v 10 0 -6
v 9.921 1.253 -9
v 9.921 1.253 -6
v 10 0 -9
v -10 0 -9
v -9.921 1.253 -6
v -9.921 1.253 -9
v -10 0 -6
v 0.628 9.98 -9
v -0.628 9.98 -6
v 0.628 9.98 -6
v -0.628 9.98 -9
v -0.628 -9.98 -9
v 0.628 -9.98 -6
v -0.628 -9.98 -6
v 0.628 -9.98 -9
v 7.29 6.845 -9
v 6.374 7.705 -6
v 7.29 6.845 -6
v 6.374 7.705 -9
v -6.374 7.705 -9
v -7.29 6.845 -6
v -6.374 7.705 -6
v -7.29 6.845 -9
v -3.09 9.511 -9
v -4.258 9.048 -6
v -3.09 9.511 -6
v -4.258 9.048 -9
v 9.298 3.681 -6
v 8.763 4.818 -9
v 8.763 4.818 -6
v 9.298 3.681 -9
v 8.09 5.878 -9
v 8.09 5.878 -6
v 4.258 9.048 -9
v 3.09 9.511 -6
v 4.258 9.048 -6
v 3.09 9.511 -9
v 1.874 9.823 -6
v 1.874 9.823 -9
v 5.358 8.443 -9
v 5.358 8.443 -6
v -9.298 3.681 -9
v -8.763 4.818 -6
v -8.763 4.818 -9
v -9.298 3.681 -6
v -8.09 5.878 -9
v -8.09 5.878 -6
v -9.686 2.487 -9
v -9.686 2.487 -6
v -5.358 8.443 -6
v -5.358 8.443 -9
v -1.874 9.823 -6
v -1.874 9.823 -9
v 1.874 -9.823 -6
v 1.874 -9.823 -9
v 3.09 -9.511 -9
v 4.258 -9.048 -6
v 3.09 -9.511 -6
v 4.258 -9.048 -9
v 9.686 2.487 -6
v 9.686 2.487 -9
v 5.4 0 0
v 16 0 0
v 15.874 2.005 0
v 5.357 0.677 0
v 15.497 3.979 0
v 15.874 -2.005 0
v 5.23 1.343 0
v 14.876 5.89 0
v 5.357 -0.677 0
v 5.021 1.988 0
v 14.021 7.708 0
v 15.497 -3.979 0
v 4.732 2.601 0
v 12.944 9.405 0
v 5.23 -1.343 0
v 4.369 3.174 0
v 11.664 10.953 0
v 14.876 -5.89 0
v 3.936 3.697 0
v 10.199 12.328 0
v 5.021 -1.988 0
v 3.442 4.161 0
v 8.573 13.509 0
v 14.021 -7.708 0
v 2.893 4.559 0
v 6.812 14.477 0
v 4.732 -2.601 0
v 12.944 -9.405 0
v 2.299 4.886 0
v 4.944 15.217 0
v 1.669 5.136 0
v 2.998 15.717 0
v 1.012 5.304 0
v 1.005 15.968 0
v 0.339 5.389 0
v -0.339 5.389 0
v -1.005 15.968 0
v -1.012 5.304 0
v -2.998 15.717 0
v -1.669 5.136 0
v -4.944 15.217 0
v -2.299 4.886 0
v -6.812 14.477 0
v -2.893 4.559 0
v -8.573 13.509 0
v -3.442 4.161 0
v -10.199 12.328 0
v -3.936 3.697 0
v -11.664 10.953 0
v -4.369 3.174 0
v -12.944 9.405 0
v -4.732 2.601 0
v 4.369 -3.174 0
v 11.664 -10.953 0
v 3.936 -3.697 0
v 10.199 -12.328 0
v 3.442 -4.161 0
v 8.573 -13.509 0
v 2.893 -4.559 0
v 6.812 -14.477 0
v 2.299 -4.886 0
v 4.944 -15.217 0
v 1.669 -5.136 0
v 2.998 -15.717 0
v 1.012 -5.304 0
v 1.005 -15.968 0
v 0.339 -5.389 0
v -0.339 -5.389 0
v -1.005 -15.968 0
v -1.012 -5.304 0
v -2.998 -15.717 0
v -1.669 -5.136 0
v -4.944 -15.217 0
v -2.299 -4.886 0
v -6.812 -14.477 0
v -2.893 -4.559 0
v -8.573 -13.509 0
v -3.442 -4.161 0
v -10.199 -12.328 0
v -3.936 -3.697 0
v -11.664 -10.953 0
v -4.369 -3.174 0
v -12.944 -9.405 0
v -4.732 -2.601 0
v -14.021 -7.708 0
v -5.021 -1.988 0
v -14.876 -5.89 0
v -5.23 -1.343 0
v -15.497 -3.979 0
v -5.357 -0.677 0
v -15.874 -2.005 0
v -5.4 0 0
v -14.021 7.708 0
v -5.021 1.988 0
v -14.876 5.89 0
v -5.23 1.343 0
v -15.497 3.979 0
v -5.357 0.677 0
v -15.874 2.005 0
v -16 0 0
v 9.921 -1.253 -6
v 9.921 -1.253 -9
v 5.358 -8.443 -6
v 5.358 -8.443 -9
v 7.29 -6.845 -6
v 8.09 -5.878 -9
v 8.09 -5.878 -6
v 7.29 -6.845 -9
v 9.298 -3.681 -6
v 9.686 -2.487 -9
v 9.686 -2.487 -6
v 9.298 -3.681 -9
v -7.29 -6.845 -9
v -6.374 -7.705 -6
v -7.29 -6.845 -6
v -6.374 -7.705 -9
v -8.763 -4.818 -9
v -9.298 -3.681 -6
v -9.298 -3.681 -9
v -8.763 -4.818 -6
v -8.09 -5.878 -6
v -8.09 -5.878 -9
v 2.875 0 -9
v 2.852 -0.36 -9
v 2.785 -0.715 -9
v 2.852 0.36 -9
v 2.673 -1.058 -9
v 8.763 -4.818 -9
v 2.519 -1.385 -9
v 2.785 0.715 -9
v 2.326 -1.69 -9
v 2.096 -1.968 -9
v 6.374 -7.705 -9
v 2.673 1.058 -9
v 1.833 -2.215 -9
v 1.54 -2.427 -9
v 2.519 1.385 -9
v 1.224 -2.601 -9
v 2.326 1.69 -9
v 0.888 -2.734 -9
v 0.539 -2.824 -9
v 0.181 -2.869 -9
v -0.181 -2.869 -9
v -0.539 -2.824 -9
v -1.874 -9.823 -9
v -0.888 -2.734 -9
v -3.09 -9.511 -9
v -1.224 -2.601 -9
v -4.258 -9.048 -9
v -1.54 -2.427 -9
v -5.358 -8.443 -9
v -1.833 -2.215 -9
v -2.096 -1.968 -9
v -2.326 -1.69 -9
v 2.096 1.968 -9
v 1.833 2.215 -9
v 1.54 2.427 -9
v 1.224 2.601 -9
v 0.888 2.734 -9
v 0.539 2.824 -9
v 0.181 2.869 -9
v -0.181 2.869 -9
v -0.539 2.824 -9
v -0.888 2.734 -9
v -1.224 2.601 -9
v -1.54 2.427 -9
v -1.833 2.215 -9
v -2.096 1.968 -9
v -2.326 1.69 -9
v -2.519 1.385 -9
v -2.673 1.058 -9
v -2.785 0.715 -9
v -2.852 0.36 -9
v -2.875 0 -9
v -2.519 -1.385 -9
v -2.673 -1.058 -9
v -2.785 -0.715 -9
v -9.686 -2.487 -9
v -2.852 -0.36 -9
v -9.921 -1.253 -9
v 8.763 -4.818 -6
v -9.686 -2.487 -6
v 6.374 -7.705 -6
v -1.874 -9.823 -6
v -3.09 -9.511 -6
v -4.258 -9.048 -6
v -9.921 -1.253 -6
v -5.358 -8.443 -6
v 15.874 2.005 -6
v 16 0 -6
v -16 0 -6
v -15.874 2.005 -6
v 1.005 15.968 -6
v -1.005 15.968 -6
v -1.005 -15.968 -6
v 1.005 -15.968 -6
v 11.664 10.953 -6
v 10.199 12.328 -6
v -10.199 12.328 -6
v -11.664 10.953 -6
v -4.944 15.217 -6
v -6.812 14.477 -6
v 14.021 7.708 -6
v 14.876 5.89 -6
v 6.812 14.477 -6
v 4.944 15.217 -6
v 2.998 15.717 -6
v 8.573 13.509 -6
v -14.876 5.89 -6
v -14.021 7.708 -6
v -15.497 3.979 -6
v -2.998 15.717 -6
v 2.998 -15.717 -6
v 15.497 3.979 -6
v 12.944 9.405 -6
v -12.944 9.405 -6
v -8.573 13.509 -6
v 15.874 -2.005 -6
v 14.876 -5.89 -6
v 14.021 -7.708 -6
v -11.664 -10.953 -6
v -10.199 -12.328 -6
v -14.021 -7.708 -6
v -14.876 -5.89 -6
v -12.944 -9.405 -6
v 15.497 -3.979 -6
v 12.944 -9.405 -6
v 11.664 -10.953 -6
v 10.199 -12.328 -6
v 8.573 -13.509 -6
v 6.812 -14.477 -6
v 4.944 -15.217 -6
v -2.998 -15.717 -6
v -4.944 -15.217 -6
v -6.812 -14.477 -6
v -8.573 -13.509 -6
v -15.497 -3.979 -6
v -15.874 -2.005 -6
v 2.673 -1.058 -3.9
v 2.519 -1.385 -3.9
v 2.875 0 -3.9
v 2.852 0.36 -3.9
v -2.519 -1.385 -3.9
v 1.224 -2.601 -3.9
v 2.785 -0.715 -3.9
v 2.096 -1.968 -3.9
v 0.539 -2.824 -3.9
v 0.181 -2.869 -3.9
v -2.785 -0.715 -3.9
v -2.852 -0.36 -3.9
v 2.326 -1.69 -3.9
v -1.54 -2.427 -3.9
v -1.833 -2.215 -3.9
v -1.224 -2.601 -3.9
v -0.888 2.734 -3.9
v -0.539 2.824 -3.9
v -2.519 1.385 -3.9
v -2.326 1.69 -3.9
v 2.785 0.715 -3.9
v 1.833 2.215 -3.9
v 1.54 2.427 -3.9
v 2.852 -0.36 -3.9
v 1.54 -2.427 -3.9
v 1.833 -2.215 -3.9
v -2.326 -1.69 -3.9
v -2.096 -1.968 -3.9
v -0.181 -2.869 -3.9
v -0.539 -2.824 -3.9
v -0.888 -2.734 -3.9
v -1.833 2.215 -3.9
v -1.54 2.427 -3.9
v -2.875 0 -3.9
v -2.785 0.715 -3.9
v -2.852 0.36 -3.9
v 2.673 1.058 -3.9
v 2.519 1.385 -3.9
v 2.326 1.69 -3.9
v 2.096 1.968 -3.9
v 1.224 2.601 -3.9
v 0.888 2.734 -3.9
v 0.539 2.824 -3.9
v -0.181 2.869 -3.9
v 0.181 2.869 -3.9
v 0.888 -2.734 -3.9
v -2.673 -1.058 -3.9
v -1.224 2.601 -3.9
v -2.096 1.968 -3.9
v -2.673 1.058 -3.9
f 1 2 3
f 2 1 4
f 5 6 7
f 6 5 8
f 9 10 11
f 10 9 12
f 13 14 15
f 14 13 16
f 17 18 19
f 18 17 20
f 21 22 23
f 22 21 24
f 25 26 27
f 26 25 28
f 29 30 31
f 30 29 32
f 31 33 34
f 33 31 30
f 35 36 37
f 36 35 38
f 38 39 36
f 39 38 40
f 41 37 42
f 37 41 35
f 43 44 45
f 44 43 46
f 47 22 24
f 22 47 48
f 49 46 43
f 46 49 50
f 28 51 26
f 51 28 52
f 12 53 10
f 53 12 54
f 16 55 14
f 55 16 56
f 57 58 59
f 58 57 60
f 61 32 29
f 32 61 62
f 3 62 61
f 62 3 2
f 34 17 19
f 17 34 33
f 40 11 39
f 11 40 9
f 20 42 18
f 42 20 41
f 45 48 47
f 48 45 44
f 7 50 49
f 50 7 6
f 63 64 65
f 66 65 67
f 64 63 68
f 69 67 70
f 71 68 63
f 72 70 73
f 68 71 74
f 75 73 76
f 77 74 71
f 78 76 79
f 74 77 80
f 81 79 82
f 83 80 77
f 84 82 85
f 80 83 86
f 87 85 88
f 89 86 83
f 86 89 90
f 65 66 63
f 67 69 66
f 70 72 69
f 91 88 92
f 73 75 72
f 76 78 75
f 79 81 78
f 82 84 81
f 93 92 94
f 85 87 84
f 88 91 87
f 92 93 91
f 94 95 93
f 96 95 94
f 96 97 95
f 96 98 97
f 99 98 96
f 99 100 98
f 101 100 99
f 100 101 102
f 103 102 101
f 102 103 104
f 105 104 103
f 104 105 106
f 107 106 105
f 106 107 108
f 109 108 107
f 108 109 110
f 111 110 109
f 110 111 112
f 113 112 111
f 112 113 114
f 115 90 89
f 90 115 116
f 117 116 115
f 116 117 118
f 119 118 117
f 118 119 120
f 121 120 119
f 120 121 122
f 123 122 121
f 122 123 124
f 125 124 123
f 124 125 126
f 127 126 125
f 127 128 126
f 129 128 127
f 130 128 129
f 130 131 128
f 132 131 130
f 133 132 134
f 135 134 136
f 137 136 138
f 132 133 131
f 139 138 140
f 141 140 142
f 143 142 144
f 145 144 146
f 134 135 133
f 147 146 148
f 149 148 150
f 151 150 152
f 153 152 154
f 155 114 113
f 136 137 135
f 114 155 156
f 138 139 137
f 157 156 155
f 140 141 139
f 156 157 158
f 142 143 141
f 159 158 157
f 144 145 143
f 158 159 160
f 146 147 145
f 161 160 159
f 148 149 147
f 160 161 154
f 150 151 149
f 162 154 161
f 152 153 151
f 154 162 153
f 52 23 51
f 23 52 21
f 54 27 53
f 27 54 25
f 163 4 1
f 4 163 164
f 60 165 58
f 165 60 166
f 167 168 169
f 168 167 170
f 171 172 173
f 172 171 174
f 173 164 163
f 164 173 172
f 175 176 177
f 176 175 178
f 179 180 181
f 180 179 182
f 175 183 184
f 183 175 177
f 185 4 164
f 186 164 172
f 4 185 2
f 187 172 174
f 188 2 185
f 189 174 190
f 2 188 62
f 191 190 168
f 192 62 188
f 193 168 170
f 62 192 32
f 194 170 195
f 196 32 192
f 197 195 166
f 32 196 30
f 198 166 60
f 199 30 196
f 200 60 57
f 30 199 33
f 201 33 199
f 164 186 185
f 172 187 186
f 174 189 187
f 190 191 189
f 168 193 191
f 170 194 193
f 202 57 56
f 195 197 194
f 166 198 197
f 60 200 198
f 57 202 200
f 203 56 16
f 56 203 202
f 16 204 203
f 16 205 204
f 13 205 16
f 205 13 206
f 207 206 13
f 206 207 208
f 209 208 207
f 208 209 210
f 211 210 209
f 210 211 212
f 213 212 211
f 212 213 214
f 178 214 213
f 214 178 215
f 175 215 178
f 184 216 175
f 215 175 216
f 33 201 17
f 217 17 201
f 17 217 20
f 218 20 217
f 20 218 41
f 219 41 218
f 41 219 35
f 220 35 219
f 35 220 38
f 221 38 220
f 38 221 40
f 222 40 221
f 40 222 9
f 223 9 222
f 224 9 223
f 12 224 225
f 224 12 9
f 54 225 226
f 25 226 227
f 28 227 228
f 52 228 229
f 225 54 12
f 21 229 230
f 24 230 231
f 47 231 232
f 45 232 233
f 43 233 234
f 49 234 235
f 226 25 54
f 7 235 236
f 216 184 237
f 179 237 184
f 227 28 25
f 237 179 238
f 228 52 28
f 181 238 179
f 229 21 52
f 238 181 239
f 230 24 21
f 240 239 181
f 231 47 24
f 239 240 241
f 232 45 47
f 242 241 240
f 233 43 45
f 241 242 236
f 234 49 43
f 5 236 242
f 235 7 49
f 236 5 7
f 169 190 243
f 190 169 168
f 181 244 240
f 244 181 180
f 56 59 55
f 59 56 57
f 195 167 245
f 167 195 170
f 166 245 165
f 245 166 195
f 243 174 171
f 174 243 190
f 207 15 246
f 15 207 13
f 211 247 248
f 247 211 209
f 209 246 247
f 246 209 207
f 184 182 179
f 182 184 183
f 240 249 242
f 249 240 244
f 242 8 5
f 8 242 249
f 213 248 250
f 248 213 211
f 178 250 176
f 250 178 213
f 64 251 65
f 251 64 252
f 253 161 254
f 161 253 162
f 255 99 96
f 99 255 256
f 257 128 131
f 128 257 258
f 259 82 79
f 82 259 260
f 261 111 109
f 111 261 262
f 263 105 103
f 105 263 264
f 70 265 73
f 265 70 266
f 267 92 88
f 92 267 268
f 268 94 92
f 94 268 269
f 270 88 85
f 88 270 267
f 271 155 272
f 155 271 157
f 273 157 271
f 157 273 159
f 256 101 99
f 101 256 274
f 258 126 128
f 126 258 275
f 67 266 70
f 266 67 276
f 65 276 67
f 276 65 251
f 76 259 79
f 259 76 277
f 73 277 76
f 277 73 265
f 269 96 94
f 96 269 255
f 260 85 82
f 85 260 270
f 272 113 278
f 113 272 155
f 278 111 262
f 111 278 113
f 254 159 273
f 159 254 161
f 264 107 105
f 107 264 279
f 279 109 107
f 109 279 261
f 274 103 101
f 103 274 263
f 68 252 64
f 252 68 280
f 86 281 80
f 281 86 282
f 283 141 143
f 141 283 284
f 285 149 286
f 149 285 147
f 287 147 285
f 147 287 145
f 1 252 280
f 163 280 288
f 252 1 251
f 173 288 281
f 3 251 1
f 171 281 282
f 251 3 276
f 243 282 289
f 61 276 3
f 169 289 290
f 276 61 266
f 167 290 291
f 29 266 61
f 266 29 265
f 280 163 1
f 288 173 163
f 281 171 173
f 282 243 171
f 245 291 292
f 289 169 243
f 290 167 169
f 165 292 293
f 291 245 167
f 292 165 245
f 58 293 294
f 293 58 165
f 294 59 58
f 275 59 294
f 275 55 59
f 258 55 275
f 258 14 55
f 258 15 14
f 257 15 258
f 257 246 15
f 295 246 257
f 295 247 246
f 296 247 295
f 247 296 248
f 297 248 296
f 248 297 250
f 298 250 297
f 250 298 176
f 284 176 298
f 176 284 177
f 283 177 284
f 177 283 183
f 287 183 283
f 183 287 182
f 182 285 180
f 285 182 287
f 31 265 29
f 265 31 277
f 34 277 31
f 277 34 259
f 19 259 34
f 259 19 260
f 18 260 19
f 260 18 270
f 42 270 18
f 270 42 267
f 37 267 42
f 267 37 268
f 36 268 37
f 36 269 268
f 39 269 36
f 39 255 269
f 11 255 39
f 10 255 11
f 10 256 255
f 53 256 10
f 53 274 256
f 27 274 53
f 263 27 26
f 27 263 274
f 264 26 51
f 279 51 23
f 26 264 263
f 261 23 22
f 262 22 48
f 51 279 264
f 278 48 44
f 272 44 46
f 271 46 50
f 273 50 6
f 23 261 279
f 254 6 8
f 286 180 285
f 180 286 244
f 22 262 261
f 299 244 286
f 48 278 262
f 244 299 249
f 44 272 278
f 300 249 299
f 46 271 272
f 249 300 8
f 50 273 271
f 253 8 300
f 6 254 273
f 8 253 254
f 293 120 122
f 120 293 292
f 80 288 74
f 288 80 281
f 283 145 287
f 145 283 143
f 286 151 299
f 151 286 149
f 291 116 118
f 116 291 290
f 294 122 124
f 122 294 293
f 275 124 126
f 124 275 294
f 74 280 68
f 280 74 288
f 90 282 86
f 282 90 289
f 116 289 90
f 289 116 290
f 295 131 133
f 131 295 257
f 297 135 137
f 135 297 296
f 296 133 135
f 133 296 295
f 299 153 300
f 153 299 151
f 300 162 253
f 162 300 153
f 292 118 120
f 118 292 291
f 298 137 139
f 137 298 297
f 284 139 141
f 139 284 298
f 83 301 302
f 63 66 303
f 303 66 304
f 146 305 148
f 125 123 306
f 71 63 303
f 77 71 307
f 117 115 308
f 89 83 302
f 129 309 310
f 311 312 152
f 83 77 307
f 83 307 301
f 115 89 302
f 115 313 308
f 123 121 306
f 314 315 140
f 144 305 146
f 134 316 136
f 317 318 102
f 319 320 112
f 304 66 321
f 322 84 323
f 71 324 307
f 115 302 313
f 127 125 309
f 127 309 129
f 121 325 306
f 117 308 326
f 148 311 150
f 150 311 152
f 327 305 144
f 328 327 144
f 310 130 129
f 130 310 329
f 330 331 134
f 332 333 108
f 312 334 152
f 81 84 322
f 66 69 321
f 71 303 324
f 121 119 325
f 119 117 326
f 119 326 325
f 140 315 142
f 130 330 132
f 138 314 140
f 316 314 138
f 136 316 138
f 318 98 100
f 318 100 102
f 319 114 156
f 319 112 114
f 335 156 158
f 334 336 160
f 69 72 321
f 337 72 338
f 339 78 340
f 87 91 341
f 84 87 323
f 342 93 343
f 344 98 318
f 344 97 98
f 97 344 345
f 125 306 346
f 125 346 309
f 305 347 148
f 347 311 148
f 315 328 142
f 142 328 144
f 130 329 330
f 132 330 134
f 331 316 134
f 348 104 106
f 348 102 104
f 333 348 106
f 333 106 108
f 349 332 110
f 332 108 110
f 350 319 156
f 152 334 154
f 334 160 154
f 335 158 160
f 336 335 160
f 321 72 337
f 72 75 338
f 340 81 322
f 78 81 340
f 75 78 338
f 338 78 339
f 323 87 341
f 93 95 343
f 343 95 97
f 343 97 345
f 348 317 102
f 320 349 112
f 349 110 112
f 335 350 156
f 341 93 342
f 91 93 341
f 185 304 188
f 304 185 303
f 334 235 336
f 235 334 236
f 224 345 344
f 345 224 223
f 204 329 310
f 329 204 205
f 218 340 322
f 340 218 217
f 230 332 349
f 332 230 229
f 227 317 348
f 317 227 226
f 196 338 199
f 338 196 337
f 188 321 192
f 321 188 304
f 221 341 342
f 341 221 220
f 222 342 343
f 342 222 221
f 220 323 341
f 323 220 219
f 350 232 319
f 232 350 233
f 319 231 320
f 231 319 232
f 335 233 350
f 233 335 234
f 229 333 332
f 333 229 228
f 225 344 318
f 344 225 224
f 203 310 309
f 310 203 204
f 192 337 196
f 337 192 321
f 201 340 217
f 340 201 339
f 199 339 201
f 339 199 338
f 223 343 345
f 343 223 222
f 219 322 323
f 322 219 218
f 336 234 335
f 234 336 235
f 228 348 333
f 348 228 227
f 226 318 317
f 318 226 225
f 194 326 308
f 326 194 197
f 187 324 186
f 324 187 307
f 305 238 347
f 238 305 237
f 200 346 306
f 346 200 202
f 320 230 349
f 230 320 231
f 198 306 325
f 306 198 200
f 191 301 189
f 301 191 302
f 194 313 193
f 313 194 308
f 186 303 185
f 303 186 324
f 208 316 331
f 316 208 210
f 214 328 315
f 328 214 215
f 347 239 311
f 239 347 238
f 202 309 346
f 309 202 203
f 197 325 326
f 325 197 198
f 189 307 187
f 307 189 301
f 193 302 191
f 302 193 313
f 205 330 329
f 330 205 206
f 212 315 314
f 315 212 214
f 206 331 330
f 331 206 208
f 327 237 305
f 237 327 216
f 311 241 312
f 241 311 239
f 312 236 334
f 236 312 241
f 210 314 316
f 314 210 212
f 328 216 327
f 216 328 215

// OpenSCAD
$fn = 50;


difference() {
	union() {
		translate(v = [0, 0, -9.0000000000]) {
			cylinder(h = 9, r = 10.0000000000);
		}
		translate(v = [0, 0, -6.0000000000]) {
			cylinder(h = 6, r = 16.0000000000);
		}
	}
	union() {
		translate(v = [0, 0, 0]) {
			rotate(a = [0, 0, 0]) {
				difference() {
					union() {
						#translate(v = [0, 0, -9.0000000000]) {
							cylinder(h = 9, r = 2.6000000000);
						}
						#translate(v = [0, 0, -3.9000000000]) {
							cylinder(h = 3.9000000000, r1 = 2.8750000000, r2 = 5.4000000000);
						}
						#translate(v = [0, 0, -9.0000000000]) {
							cylinder(h = 9, r = 2.8750000000);
						}
						#translate(v = [0, 0, -9.0000000000]) {
							cylinder(h = 9, r = 2.6000000000);
						}
					}
					union();
				}
			}
		}
	}
}
